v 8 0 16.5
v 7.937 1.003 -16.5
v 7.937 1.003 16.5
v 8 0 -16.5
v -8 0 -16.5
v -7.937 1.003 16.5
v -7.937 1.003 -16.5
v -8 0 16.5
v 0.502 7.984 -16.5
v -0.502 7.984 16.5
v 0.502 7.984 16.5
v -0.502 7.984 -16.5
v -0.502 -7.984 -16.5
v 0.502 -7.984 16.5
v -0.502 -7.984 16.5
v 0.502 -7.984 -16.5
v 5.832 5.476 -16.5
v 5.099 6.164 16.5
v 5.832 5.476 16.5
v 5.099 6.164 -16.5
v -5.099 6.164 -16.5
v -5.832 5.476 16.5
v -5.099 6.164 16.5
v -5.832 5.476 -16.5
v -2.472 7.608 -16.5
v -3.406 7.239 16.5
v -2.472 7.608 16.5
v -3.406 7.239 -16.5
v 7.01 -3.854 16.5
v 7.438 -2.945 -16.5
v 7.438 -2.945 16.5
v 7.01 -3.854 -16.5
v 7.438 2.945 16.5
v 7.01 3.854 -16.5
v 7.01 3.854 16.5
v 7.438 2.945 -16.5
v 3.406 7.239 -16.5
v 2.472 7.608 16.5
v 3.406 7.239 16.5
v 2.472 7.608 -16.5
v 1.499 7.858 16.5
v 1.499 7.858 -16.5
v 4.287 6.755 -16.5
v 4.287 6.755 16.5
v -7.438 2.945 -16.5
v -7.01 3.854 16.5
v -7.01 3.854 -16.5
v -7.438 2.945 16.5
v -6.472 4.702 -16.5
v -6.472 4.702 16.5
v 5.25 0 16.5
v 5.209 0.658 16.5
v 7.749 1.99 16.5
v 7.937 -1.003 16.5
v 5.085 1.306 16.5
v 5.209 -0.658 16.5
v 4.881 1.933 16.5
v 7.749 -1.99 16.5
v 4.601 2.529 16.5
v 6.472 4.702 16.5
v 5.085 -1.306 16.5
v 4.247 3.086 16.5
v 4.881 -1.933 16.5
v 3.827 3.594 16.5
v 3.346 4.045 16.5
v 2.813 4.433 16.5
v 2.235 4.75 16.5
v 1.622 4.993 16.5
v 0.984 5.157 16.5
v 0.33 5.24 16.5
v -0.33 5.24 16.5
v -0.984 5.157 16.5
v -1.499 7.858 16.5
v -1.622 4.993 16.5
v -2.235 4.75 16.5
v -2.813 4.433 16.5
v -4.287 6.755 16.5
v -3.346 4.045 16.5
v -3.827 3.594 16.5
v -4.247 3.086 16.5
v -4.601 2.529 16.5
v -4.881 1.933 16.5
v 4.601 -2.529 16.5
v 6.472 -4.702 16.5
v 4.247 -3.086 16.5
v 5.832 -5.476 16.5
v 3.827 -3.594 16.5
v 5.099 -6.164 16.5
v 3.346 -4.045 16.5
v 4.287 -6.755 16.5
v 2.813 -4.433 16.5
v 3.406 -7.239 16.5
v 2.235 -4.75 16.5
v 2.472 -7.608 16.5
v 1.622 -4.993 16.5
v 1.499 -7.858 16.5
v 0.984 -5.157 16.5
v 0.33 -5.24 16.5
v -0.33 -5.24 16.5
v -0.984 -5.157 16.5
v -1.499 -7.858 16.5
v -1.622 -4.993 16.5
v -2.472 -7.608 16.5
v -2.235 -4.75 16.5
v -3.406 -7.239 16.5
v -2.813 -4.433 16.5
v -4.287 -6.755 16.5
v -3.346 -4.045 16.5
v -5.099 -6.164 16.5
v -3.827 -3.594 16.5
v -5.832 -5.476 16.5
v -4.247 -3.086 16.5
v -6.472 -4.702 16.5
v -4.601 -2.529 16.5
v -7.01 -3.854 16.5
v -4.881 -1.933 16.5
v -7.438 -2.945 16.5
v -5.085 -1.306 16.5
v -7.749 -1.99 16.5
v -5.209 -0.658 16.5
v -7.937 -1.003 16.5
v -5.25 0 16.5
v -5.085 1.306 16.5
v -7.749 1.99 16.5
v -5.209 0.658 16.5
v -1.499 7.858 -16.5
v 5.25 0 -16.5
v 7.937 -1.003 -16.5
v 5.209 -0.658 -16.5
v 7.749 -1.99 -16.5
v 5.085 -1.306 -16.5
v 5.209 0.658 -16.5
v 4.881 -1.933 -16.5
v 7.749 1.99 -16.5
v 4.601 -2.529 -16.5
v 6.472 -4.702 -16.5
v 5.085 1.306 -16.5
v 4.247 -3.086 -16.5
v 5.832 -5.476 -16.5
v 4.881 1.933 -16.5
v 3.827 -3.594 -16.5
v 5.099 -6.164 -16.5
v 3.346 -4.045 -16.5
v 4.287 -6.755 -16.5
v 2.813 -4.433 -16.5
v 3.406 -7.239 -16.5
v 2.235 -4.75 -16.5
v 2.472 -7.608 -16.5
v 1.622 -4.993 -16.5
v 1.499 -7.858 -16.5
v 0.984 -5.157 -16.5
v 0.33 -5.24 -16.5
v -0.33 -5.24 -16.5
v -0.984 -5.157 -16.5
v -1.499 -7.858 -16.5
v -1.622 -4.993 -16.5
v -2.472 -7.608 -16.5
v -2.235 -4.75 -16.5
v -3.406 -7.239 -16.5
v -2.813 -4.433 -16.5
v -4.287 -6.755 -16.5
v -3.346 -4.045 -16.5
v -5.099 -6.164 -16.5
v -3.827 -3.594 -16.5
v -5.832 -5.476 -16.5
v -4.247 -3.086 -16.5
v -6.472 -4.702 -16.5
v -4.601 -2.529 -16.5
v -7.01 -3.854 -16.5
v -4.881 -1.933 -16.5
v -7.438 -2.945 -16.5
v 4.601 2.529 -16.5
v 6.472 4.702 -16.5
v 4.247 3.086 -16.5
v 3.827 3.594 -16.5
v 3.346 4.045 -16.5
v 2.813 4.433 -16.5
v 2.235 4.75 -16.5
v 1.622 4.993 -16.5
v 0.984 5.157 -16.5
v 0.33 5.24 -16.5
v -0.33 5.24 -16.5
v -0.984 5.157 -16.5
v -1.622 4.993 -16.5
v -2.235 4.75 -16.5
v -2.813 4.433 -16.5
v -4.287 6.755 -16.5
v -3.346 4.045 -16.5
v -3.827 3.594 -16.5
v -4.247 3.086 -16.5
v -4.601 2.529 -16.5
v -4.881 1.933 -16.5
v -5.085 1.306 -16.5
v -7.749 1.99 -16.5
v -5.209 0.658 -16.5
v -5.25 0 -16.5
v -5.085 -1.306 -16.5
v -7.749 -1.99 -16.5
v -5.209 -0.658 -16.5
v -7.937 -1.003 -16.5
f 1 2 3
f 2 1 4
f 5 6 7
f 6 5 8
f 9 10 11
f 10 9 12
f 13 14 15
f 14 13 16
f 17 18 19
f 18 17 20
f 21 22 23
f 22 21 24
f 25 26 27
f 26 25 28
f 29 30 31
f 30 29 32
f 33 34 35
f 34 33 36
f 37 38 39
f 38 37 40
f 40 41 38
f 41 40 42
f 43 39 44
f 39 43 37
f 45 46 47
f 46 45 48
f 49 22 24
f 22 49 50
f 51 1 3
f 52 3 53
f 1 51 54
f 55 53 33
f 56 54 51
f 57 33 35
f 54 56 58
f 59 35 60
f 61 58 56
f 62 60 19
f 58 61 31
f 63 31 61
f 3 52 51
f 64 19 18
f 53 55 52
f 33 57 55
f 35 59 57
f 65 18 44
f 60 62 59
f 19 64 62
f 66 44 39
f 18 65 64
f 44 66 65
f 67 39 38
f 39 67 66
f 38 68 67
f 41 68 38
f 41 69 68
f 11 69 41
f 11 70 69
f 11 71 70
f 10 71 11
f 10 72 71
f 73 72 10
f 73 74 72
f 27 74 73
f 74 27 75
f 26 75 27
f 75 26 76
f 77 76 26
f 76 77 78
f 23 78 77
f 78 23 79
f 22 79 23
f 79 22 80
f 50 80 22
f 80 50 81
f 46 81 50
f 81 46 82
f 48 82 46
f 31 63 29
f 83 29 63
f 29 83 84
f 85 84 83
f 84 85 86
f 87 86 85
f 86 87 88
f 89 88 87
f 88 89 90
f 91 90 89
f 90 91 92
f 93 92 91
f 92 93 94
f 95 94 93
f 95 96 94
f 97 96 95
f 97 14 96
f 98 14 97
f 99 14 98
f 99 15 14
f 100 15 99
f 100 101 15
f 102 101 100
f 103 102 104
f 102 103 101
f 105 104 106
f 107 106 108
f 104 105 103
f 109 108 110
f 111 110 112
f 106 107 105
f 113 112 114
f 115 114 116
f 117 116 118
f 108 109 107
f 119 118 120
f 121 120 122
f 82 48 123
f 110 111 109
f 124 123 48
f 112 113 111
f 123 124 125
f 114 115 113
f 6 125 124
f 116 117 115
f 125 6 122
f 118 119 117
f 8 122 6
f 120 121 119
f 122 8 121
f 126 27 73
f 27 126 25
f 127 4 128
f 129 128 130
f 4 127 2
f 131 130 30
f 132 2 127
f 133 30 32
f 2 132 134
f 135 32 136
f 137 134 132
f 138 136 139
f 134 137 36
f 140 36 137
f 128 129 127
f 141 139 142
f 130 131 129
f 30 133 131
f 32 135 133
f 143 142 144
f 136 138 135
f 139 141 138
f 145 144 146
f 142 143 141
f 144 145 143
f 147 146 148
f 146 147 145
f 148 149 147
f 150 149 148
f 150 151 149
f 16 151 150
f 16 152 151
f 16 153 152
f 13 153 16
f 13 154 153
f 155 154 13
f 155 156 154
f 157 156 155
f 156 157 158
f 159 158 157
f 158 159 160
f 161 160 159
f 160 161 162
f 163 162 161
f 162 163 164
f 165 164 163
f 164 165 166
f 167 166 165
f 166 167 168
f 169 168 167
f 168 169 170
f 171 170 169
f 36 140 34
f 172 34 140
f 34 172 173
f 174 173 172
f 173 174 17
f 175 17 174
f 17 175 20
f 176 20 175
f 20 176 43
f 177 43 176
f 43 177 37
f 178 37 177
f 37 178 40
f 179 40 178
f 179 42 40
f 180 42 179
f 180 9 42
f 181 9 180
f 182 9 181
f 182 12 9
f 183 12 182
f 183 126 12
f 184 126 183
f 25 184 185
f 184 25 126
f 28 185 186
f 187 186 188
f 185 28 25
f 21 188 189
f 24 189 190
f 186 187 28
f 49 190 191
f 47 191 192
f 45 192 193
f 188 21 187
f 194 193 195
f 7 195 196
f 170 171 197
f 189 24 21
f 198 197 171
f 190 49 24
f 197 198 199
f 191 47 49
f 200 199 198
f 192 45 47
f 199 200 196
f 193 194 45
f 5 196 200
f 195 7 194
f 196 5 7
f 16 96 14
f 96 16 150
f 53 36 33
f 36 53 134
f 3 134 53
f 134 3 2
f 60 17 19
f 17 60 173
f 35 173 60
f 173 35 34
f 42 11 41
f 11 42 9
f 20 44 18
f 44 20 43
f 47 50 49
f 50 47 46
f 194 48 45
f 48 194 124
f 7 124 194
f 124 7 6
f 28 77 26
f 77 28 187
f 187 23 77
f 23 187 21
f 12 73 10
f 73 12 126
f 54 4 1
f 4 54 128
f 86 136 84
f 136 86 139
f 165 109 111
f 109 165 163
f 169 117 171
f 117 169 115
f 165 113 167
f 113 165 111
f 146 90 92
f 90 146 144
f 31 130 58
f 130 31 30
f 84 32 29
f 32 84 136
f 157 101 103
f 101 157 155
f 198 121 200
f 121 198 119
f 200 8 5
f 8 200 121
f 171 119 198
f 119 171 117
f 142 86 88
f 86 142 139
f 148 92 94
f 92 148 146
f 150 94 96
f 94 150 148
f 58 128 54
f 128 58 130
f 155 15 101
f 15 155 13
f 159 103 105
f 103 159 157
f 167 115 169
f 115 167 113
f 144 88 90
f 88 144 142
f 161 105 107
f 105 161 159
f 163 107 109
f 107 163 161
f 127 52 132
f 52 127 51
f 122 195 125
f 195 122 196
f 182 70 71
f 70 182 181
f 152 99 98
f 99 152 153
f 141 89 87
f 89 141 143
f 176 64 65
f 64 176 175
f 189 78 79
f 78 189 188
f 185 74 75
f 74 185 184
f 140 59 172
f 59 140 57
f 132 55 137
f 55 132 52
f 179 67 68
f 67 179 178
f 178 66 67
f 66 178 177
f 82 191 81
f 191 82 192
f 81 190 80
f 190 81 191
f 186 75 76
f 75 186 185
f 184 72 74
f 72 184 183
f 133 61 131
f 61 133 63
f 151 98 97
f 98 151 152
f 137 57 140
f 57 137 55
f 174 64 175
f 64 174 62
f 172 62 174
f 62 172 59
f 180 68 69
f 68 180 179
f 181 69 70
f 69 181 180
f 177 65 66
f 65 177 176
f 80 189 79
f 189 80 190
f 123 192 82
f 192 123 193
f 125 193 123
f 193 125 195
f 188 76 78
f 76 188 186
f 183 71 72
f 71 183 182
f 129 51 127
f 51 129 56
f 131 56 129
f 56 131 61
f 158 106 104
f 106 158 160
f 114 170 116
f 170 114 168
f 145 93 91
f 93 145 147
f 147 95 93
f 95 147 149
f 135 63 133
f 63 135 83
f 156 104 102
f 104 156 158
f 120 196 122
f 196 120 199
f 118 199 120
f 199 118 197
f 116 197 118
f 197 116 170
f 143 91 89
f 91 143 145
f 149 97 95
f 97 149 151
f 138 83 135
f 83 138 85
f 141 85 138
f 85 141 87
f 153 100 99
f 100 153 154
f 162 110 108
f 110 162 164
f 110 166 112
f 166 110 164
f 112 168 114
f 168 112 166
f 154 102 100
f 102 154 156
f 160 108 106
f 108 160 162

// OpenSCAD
$fn = 50;


difference() {
	union() {
		translate(v = [0, 0, -16.5000000000]) {
			cylinder(h = 33, r = 8.0000000000);
		}
	}
	union() {
		translate(v = [0, 0, -100.0000000000]) {
			cylinder(h = 200, r = 5.2500000000);
		}
	}
}
